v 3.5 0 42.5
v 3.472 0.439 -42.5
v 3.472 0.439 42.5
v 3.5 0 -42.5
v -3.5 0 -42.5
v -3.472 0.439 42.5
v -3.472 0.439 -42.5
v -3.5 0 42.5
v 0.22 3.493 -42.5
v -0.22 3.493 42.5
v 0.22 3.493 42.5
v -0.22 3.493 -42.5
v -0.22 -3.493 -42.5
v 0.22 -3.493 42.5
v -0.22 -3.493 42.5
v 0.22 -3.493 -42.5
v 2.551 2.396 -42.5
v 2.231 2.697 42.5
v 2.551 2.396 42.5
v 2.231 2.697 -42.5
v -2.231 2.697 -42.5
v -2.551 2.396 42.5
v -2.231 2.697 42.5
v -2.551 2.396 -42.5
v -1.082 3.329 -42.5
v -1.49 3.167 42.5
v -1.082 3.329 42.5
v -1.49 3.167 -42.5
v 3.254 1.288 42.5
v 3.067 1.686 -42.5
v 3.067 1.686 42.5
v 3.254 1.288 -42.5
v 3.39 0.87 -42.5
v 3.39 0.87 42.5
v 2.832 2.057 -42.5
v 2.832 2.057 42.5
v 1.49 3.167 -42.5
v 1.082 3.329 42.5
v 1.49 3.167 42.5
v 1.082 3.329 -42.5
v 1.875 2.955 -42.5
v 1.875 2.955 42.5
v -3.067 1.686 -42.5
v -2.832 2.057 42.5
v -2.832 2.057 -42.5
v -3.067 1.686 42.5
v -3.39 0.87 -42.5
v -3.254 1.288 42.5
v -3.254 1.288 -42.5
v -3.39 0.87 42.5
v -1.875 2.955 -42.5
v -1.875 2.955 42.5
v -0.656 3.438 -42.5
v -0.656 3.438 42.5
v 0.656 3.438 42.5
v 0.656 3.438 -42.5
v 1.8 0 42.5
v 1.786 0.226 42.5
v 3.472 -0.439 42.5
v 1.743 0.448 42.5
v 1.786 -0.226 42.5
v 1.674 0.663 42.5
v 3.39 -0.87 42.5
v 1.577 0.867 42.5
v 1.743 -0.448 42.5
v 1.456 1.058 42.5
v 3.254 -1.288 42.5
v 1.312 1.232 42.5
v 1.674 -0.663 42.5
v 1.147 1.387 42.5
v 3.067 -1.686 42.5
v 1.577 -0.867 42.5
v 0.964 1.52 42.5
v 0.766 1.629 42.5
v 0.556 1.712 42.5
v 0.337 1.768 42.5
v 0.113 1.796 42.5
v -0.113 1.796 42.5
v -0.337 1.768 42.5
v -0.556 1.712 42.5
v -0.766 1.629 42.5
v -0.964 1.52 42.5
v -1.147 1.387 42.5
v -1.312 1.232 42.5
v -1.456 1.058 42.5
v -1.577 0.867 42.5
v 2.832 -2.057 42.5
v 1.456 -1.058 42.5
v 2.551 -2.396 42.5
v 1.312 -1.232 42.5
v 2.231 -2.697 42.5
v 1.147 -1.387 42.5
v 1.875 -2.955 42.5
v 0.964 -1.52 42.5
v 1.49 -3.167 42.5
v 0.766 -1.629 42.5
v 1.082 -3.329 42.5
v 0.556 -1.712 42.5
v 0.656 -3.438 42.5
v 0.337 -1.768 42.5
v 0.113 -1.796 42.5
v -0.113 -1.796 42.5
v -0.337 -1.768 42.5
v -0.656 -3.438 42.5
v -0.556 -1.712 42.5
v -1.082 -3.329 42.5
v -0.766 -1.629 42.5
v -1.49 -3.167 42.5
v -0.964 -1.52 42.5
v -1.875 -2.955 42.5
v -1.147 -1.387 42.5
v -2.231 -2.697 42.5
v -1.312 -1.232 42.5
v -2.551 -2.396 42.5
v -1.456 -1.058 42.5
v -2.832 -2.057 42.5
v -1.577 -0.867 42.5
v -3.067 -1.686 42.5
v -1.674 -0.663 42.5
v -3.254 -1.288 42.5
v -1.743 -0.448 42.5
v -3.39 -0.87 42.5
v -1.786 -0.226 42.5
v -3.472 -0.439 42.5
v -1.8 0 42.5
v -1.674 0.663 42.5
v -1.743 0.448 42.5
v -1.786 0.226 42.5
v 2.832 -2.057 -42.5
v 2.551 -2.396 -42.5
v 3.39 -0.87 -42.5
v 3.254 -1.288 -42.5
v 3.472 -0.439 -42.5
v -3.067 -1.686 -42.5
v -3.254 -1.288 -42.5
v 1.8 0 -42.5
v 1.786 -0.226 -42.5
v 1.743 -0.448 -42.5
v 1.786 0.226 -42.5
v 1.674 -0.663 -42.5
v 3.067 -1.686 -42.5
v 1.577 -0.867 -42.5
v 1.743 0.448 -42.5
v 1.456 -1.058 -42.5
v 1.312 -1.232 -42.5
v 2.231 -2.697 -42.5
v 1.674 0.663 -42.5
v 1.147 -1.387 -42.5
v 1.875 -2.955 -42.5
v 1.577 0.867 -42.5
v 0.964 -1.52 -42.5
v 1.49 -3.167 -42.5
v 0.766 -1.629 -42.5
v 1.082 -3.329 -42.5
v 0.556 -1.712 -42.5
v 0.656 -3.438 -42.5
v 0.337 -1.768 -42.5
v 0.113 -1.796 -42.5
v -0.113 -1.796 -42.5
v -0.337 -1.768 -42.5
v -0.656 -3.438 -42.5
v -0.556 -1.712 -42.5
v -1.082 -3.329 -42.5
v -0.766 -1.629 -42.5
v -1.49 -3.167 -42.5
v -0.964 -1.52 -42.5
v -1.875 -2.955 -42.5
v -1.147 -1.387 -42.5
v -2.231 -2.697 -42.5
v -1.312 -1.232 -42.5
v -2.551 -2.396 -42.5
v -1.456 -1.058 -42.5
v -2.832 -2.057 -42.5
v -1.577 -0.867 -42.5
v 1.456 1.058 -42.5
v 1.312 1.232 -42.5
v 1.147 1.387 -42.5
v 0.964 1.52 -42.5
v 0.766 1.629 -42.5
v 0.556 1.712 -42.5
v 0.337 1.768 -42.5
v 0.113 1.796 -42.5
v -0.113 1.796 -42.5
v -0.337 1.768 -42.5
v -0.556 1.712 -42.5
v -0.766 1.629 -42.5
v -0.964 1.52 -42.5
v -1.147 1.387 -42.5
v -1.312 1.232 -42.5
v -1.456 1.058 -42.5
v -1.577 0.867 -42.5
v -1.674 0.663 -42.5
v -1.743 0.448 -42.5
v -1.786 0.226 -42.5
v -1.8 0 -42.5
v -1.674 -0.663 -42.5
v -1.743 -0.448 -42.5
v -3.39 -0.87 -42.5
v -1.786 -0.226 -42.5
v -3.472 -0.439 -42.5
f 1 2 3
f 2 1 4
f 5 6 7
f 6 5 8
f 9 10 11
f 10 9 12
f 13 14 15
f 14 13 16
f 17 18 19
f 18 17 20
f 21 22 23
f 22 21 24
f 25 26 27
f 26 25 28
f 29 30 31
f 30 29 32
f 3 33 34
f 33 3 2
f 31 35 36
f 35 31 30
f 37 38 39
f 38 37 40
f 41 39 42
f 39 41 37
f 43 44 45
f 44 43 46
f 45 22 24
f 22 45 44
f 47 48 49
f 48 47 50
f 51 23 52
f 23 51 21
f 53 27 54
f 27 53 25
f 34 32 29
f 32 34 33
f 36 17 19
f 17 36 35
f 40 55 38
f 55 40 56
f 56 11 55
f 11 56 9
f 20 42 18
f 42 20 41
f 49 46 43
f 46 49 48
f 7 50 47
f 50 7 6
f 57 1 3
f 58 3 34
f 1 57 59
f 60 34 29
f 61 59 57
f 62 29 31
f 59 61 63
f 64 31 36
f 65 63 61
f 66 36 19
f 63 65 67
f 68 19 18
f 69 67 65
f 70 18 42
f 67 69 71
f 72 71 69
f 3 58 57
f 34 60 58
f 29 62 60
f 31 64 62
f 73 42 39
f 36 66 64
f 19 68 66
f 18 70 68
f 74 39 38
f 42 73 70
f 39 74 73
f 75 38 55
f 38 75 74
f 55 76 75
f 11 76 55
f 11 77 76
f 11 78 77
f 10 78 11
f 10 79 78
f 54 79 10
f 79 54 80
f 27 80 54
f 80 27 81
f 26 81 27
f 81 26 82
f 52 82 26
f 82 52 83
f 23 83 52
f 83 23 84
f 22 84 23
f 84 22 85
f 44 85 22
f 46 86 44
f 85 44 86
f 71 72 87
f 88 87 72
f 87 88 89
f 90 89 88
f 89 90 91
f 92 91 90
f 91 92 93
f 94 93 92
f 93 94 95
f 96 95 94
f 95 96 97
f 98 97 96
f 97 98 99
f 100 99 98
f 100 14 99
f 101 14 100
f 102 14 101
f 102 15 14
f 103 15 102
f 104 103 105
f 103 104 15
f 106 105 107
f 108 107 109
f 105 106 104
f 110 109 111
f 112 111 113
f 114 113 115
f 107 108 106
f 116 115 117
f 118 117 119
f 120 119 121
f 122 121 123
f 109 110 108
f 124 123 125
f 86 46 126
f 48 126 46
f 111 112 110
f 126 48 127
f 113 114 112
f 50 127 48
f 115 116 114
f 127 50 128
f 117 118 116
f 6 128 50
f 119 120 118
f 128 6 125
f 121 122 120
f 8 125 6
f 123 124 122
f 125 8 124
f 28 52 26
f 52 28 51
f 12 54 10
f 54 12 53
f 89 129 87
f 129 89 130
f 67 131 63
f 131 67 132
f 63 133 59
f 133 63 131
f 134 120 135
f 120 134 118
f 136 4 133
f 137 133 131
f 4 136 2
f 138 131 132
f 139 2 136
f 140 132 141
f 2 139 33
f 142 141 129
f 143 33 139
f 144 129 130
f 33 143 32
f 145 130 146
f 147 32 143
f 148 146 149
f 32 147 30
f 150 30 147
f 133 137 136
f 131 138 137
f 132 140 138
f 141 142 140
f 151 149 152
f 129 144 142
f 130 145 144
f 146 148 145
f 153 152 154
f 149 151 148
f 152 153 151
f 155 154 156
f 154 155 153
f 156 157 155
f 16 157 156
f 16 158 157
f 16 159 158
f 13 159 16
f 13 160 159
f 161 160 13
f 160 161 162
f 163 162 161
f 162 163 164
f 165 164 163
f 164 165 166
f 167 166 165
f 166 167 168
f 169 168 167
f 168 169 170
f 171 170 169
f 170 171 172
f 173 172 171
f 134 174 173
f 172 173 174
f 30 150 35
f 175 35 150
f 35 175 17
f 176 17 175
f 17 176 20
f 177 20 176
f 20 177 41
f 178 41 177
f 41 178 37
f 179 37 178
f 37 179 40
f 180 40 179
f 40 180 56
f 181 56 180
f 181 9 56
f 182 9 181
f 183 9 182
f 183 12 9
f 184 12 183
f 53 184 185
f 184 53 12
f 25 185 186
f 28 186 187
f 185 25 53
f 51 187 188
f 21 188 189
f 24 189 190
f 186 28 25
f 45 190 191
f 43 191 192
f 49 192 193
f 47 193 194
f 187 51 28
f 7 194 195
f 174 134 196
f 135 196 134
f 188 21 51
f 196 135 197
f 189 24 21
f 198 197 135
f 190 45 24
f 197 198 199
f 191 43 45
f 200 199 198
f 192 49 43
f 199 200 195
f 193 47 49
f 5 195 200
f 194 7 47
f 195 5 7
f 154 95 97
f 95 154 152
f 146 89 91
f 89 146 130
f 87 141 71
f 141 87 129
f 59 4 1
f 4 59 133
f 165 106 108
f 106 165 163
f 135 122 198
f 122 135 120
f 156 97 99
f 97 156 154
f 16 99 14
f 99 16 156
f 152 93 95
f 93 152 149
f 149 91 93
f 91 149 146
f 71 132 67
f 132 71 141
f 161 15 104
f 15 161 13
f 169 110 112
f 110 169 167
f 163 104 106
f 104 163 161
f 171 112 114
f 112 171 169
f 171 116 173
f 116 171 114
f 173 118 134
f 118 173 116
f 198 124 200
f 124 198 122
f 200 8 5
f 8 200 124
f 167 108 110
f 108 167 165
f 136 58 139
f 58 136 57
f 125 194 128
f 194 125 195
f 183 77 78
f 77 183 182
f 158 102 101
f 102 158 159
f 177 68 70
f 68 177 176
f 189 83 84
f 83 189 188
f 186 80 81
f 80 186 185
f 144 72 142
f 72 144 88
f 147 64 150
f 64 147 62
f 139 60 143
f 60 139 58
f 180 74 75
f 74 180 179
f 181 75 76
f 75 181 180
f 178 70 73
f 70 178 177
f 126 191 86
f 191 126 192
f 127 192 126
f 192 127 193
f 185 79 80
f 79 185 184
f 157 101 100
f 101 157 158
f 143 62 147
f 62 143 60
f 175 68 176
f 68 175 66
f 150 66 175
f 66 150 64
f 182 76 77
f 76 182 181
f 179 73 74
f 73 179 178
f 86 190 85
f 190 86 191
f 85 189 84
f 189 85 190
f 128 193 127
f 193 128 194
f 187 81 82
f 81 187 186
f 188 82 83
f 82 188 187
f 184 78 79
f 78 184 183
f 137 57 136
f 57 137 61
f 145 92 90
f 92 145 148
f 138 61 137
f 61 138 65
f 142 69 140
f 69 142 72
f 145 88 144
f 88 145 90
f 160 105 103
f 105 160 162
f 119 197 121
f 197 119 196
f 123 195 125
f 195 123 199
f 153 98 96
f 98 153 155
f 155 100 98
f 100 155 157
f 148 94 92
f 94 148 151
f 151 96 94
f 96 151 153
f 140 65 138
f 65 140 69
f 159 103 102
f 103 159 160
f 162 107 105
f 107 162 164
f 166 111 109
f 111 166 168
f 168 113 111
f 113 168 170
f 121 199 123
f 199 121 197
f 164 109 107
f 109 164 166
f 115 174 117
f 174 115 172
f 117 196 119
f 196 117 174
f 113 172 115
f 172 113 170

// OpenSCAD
$fn = 50;


difference() {
	union() {
		translate(v = [0, 0, -42.5000000000]) {
			cylinder(h = 85, r = 3.5000000000);
		}
	}
	union() {
		translate(v = [0, 0, -100.0000000000]) {
			cylinder(h = 200, r = 1.8000000000);
		}
	}
}
